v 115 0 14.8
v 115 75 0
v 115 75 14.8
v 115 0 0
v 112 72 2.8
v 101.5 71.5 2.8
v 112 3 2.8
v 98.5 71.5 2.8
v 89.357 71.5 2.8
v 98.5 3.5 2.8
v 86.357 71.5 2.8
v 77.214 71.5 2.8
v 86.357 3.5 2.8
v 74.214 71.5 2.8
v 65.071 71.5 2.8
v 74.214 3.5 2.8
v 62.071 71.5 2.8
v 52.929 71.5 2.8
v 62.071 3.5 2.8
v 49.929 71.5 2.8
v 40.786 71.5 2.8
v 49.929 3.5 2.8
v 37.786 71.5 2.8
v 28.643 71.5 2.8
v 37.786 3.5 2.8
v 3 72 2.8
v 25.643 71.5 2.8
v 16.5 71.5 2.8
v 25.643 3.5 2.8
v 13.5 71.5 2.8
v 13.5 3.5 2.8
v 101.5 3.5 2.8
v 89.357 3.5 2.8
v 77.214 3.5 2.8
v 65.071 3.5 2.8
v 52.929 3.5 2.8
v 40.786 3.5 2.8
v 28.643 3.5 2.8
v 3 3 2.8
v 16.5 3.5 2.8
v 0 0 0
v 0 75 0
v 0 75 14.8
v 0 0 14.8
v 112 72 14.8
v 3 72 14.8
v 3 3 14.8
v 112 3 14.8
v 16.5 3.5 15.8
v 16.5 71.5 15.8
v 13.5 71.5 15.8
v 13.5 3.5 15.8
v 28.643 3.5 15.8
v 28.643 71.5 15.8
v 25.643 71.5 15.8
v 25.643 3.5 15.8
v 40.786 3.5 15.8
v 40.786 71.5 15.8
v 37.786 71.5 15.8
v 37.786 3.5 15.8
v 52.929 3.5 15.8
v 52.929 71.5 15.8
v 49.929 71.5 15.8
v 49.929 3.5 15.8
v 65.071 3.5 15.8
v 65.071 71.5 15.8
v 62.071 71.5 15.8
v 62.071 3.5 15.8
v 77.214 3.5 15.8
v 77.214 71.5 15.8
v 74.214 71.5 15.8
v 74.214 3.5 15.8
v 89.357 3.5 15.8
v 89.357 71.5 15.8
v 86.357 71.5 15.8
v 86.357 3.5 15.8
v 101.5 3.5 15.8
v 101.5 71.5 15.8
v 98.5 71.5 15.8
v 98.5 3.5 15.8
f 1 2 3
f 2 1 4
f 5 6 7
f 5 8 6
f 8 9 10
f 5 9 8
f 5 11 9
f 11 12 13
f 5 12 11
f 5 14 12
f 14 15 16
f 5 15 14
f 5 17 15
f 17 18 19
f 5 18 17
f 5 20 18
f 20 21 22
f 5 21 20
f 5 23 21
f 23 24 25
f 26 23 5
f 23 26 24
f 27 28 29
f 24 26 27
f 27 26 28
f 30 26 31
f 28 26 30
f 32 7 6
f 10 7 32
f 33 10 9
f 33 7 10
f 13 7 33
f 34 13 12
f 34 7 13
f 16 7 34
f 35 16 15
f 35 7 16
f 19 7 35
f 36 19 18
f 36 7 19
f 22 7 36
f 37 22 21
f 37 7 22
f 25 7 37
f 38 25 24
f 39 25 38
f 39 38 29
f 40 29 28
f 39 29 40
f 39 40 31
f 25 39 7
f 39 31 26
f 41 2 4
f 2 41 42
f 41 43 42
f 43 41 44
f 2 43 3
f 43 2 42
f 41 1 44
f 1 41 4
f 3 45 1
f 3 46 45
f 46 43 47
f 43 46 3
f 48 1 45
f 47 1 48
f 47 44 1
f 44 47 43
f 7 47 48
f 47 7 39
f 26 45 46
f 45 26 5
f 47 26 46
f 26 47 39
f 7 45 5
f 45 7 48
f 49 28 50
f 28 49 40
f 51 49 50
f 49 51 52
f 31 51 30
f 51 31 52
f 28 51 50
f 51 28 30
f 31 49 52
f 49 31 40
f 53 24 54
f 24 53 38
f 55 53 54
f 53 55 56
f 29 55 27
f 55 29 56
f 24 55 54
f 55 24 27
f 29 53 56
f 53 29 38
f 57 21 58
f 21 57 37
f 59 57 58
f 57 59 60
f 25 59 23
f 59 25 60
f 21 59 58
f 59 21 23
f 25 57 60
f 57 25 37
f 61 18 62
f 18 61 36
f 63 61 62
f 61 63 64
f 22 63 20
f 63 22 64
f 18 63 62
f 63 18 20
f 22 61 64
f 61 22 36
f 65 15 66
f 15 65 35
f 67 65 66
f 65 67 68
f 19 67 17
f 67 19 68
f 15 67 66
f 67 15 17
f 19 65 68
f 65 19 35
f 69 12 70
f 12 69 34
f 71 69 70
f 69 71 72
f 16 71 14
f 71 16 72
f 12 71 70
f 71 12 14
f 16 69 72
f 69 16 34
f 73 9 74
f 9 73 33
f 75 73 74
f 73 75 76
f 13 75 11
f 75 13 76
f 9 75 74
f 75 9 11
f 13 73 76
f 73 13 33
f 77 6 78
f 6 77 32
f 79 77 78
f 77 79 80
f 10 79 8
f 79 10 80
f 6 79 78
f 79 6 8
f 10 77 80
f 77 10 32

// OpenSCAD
union() {
	translate(v = [57.5, 37.5, 1.4]) {
		cube(center = true, size = [115.0, 75.0, 2.8]);
	}
	translate(v = [57.5, 1.5, 8.8]) {
		cube(center = true, size = [115.0, 3.0, 12.0]);
	}
	translate(v = [57.5, 73.5, 8.8]) {
		cube(center = true, size = [115.0, 3.0, 12.0]);
	}
	translate(v = [1.5, 37.5, 8.8]) {
		cube(center = true, size = [3.0, 75.0, 12.0]);
	}
	translate(v = [113.5, 37.5, 8.8]) {
		cube(center = true, size = [3.0, 75.0, 12.0]);
	}
	translate(v = [15.0, 37.5, 9.3]) {
		cube(center = true, size = [3.0, 68.0, 13.0]);
	}
	translate(v = [27.1429, 37.5, 9.3]) {
		cube(center = true, size = [3.0, 68.0, 13.0]);
	}
	translate(v = [39.2857, 37.5, 9.3]) {
		cube(center = true, size = [3.0, 68.0, 13.0]);
	}
	translate(v = [51.4286, 37.5, 9.3]) {
		cube(center = true, size = [3.0, 68.0, 13.0]);
	}
	translate(v = [63.5714, 37.5, 9.3]) {
		cube(center = true, size = [3.0, 68.0, 13.0]);
	}
	translate(v = [75.7143, 37.5, 9.3]) {
		cube(center = true, size = [3.0, 68.0, 13.0]);
	}
	translate(v = [87.8571, 37.5, 9.3]) {
		cube(center = true, size = [3.0, 68.0, 13.0]);
	}
	translate(v = [100.0, 37.5, 9.3]) {
		cube(center = true, size = [3.0, 68.0, 13.0]);
	}
}
